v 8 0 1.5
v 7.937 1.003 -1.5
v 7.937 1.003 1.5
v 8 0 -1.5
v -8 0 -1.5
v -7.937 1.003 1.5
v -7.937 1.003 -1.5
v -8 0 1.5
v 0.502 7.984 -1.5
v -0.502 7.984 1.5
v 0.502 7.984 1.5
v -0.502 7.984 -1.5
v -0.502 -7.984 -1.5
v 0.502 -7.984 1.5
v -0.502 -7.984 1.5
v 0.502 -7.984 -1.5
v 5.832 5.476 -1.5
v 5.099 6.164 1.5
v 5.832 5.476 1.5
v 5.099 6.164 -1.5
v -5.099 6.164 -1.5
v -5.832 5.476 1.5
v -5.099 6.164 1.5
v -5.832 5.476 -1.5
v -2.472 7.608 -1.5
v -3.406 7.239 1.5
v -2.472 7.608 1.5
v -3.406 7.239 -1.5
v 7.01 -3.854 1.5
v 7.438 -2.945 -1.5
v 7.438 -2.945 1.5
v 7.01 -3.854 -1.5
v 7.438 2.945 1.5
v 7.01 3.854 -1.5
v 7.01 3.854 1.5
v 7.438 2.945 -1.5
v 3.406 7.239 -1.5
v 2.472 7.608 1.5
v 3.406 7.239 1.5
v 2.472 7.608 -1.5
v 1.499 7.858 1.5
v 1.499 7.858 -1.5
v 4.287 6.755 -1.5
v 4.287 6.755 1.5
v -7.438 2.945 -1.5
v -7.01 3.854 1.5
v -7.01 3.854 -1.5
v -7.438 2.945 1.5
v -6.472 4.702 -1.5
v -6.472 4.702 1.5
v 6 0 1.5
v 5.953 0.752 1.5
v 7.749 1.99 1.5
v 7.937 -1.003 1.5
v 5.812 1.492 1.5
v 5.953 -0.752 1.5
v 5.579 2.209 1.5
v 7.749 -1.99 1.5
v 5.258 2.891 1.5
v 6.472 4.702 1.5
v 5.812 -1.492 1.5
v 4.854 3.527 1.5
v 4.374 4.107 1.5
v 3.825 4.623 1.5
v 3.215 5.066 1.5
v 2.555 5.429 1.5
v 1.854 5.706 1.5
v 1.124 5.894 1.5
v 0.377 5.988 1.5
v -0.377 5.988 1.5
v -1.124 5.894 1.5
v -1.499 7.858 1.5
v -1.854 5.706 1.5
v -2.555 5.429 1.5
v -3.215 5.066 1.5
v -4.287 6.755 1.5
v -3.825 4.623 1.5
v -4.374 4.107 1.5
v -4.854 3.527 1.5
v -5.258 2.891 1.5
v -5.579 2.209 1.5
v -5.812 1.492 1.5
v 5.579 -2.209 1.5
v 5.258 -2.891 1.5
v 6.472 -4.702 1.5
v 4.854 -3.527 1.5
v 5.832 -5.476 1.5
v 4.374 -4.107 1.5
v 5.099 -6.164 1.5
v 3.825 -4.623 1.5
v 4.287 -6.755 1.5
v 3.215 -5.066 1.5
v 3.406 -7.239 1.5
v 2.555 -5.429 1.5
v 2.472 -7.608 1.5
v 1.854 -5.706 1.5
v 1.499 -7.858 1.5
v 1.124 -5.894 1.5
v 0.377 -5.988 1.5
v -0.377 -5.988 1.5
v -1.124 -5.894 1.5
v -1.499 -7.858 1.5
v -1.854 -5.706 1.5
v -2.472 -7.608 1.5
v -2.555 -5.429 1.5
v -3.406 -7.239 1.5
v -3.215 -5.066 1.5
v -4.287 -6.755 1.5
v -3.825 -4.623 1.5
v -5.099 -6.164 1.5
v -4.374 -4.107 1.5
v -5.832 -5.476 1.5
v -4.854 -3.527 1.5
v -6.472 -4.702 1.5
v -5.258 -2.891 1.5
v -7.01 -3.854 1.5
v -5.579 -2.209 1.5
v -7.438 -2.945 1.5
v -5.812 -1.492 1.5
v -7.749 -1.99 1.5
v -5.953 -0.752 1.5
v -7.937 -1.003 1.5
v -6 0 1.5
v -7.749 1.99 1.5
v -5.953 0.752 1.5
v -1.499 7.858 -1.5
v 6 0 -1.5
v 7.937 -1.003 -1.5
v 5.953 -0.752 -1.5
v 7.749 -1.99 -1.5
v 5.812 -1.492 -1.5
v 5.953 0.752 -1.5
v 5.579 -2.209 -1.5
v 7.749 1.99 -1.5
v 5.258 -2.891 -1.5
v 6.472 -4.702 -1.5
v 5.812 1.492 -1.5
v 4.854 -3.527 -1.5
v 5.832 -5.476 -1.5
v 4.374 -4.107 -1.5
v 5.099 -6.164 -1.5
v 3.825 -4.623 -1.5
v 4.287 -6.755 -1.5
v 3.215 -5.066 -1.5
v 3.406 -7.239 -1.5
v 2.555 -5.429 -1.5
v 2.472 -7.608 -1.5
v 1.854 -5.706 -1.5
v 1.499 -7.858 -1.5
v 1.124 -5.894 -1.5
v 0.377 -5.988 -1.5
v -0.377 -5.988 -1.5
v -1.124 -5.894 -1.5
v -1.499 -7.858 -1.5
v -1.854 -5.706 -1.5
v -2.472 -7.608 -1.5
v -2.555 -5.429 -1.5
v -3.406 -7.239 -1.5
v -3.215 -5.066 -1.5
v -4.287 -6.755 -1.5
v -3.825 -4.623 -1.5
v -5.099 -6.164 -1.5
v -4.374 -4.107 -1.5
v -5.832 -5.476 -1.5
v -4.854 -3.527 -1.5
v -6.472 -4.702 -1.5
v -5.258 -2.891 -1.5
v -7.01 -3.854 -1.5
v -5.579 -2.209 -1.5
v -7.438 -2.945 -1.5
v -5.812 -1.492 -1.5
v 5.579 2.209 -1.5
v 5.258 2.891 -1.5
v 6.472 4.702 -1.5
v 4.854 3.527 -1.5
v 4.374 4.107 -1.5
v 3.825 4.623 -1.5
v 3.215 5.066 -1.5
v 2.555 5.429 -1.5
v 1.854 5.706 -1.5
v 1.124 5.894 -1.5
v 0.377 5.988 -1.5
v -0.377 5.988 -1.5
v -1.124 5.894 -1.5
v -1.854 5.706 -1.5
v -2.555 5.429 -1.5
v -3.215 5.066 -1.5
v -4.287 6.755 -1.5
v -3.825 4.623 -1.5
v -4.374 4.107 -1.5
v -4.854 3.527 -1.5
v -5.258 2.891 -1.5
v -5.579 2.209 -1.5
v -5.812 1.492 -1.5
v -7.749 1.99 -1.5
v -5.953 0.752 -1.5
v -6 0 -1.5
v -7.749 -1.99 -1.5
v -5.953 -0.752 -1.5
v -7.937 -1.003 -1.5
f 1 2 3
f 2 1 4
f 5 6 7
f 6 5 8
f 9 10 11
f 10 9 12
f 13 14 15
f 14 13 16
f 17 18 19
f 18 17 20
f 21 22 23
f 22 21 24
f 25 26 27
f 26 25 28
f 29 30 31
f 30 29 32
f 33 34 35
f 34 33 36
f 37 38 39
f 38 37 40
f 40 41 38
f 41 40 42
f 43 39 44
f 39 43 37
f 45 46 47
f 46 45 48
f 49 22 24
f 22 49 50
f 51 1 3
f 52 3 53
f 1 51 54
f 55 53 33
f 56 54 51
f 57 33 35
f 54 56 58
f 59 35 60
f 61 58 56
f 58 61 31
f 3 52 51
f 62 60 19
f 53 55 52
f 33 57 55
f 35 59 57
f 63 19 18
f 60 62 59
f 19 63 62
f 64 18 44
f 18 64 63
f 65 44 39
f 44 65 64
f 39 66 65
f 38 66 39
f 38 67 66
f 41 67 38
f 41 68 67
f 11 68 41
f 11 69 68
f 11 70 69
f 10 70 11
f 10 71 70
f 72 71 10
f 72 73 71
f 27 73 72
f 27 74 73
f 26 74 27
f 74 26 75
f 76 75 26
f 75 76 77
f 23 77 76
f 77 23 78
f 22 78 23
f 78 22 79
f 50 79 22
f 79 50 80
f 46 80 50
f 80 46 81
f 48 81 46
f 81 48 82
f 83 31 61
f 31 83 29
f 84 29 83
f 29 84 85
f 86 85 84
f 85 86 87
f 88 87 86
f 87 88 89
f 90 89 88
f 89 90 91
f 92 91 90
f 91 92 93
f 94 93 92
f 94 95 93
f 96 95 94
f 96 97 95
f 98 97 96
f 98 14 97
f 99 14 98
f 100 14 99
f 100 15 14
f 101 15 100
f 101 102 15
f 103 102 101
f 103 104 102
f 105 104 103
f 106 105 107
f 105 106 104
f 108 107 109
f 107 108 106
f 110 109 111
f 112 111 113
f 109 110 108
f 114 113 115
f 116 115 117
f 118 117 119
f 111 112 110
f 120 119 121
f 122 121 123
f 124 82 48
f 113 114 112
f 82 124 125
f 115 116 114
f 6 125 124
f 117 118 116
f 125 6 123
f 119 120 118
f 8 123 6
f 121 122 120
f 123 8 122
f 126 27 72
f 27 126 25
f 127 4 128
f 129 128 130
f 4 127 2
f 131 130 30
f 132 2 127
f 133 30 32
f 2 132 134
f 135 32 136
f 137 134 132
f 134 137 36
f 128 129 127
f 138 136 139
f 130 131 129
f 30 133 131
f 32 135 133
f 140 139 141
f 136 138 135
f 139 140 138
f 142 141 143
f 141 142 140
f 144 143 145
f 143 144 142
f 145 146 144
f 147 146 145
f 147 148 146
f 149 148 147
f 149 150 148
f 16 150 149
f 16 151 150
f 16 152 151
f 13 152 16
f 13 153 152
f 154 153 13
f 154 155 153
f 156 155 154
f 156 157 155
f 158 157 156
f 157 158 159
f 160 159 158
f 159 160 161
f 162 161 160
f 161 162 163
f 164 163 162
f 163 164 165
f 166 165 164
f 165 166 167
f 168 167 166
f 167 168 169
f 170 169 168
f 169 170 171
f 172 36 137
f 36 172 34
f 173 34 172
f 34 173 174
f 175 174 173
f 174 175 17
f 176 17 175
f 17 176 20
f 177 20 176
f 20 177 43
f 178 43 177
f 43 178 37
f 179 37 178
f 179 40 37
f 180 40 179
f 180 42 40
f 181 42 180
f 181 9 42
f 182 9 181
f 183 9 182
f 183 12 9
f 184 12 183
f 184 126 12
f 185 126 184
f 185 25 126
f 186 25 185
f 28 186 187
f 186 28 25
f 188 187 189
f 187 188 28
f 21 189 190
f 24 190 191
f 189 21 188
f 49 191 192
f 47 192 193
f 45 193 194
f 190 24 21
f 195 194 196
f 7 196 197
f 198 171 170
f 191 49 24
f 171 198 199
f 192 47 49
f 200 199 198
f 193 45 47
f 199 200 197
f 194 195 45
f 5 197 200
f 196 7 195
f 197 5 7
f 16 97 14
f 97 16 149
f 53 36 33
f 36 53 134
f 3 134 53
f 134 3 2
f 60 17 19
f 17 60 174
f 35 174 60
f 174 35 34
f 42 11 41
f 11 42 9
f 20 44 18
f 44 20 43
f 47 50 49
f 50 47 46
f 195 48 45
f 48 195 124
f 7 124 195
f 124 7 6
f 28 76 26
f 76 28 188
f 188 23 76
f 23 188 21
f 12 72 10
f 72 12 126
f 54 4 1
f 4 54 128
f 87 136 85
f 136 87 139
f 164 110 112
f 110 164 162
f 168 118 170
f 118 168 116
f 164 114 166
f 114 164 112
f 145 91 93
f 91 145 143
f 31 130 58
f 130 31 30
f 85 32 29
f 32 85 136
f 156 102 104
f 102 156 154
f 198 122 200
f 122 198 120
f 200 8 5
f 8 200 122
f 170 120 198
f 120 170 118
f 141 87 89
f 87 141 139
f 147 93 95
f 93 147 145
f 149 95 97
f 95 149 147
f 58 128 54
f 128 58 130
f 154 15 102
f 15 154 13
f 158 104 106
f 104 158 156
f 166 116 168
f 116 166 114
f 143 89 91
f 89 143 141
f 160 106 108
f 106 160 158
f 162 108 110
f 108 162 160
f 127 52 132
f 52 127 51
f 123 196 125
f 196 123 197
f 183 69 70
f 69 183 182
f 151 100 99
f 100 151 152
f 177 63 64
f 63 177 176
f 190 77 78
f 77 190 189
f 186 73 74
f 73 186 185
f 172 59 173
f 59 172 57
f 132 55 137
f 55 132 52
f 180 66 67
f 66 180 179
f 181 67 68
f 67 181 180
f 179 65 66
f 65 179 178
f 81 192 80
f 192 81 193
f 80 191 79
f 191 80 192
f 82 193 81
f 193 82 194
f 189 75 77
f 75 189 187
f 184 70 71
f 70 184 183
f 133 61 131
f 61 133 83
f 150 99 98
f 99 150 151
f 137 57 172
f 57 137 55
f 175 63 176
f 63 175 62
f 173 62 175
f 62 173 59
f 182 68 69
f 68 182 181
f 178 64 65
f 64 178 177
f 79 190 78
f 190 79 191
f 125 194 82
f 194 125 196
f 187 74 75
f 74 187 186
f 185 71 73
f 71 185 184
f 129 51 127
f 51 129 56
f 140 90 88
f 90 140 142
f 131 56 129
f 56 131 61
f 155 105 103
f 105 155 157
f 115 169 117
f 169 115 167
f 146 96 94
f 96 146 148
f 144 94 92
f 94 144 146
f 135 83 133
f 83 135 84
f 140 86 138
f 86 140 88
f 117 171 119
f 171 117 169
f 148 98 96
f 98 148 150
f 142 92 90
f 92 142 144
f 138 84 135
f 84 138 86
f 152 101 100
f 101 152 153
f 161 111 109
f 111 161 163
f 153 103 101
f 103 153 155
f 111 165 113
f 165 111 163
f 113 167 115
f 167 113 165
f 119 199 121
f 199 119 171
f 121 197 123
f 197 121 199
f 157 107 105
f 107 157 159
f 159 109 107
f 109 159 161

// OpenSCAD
$fn = 50;


difference() {
	union() {
		translate(v = [0, 0, -1.5000000000]) {
			cylinder(h = 3, r = 8.0000000000);
		}
	}
	union() {
		translate(v = [0, 0, -100.0000000000]) {
			cylinder(h = 200, r = 6);
		}
	}
}
